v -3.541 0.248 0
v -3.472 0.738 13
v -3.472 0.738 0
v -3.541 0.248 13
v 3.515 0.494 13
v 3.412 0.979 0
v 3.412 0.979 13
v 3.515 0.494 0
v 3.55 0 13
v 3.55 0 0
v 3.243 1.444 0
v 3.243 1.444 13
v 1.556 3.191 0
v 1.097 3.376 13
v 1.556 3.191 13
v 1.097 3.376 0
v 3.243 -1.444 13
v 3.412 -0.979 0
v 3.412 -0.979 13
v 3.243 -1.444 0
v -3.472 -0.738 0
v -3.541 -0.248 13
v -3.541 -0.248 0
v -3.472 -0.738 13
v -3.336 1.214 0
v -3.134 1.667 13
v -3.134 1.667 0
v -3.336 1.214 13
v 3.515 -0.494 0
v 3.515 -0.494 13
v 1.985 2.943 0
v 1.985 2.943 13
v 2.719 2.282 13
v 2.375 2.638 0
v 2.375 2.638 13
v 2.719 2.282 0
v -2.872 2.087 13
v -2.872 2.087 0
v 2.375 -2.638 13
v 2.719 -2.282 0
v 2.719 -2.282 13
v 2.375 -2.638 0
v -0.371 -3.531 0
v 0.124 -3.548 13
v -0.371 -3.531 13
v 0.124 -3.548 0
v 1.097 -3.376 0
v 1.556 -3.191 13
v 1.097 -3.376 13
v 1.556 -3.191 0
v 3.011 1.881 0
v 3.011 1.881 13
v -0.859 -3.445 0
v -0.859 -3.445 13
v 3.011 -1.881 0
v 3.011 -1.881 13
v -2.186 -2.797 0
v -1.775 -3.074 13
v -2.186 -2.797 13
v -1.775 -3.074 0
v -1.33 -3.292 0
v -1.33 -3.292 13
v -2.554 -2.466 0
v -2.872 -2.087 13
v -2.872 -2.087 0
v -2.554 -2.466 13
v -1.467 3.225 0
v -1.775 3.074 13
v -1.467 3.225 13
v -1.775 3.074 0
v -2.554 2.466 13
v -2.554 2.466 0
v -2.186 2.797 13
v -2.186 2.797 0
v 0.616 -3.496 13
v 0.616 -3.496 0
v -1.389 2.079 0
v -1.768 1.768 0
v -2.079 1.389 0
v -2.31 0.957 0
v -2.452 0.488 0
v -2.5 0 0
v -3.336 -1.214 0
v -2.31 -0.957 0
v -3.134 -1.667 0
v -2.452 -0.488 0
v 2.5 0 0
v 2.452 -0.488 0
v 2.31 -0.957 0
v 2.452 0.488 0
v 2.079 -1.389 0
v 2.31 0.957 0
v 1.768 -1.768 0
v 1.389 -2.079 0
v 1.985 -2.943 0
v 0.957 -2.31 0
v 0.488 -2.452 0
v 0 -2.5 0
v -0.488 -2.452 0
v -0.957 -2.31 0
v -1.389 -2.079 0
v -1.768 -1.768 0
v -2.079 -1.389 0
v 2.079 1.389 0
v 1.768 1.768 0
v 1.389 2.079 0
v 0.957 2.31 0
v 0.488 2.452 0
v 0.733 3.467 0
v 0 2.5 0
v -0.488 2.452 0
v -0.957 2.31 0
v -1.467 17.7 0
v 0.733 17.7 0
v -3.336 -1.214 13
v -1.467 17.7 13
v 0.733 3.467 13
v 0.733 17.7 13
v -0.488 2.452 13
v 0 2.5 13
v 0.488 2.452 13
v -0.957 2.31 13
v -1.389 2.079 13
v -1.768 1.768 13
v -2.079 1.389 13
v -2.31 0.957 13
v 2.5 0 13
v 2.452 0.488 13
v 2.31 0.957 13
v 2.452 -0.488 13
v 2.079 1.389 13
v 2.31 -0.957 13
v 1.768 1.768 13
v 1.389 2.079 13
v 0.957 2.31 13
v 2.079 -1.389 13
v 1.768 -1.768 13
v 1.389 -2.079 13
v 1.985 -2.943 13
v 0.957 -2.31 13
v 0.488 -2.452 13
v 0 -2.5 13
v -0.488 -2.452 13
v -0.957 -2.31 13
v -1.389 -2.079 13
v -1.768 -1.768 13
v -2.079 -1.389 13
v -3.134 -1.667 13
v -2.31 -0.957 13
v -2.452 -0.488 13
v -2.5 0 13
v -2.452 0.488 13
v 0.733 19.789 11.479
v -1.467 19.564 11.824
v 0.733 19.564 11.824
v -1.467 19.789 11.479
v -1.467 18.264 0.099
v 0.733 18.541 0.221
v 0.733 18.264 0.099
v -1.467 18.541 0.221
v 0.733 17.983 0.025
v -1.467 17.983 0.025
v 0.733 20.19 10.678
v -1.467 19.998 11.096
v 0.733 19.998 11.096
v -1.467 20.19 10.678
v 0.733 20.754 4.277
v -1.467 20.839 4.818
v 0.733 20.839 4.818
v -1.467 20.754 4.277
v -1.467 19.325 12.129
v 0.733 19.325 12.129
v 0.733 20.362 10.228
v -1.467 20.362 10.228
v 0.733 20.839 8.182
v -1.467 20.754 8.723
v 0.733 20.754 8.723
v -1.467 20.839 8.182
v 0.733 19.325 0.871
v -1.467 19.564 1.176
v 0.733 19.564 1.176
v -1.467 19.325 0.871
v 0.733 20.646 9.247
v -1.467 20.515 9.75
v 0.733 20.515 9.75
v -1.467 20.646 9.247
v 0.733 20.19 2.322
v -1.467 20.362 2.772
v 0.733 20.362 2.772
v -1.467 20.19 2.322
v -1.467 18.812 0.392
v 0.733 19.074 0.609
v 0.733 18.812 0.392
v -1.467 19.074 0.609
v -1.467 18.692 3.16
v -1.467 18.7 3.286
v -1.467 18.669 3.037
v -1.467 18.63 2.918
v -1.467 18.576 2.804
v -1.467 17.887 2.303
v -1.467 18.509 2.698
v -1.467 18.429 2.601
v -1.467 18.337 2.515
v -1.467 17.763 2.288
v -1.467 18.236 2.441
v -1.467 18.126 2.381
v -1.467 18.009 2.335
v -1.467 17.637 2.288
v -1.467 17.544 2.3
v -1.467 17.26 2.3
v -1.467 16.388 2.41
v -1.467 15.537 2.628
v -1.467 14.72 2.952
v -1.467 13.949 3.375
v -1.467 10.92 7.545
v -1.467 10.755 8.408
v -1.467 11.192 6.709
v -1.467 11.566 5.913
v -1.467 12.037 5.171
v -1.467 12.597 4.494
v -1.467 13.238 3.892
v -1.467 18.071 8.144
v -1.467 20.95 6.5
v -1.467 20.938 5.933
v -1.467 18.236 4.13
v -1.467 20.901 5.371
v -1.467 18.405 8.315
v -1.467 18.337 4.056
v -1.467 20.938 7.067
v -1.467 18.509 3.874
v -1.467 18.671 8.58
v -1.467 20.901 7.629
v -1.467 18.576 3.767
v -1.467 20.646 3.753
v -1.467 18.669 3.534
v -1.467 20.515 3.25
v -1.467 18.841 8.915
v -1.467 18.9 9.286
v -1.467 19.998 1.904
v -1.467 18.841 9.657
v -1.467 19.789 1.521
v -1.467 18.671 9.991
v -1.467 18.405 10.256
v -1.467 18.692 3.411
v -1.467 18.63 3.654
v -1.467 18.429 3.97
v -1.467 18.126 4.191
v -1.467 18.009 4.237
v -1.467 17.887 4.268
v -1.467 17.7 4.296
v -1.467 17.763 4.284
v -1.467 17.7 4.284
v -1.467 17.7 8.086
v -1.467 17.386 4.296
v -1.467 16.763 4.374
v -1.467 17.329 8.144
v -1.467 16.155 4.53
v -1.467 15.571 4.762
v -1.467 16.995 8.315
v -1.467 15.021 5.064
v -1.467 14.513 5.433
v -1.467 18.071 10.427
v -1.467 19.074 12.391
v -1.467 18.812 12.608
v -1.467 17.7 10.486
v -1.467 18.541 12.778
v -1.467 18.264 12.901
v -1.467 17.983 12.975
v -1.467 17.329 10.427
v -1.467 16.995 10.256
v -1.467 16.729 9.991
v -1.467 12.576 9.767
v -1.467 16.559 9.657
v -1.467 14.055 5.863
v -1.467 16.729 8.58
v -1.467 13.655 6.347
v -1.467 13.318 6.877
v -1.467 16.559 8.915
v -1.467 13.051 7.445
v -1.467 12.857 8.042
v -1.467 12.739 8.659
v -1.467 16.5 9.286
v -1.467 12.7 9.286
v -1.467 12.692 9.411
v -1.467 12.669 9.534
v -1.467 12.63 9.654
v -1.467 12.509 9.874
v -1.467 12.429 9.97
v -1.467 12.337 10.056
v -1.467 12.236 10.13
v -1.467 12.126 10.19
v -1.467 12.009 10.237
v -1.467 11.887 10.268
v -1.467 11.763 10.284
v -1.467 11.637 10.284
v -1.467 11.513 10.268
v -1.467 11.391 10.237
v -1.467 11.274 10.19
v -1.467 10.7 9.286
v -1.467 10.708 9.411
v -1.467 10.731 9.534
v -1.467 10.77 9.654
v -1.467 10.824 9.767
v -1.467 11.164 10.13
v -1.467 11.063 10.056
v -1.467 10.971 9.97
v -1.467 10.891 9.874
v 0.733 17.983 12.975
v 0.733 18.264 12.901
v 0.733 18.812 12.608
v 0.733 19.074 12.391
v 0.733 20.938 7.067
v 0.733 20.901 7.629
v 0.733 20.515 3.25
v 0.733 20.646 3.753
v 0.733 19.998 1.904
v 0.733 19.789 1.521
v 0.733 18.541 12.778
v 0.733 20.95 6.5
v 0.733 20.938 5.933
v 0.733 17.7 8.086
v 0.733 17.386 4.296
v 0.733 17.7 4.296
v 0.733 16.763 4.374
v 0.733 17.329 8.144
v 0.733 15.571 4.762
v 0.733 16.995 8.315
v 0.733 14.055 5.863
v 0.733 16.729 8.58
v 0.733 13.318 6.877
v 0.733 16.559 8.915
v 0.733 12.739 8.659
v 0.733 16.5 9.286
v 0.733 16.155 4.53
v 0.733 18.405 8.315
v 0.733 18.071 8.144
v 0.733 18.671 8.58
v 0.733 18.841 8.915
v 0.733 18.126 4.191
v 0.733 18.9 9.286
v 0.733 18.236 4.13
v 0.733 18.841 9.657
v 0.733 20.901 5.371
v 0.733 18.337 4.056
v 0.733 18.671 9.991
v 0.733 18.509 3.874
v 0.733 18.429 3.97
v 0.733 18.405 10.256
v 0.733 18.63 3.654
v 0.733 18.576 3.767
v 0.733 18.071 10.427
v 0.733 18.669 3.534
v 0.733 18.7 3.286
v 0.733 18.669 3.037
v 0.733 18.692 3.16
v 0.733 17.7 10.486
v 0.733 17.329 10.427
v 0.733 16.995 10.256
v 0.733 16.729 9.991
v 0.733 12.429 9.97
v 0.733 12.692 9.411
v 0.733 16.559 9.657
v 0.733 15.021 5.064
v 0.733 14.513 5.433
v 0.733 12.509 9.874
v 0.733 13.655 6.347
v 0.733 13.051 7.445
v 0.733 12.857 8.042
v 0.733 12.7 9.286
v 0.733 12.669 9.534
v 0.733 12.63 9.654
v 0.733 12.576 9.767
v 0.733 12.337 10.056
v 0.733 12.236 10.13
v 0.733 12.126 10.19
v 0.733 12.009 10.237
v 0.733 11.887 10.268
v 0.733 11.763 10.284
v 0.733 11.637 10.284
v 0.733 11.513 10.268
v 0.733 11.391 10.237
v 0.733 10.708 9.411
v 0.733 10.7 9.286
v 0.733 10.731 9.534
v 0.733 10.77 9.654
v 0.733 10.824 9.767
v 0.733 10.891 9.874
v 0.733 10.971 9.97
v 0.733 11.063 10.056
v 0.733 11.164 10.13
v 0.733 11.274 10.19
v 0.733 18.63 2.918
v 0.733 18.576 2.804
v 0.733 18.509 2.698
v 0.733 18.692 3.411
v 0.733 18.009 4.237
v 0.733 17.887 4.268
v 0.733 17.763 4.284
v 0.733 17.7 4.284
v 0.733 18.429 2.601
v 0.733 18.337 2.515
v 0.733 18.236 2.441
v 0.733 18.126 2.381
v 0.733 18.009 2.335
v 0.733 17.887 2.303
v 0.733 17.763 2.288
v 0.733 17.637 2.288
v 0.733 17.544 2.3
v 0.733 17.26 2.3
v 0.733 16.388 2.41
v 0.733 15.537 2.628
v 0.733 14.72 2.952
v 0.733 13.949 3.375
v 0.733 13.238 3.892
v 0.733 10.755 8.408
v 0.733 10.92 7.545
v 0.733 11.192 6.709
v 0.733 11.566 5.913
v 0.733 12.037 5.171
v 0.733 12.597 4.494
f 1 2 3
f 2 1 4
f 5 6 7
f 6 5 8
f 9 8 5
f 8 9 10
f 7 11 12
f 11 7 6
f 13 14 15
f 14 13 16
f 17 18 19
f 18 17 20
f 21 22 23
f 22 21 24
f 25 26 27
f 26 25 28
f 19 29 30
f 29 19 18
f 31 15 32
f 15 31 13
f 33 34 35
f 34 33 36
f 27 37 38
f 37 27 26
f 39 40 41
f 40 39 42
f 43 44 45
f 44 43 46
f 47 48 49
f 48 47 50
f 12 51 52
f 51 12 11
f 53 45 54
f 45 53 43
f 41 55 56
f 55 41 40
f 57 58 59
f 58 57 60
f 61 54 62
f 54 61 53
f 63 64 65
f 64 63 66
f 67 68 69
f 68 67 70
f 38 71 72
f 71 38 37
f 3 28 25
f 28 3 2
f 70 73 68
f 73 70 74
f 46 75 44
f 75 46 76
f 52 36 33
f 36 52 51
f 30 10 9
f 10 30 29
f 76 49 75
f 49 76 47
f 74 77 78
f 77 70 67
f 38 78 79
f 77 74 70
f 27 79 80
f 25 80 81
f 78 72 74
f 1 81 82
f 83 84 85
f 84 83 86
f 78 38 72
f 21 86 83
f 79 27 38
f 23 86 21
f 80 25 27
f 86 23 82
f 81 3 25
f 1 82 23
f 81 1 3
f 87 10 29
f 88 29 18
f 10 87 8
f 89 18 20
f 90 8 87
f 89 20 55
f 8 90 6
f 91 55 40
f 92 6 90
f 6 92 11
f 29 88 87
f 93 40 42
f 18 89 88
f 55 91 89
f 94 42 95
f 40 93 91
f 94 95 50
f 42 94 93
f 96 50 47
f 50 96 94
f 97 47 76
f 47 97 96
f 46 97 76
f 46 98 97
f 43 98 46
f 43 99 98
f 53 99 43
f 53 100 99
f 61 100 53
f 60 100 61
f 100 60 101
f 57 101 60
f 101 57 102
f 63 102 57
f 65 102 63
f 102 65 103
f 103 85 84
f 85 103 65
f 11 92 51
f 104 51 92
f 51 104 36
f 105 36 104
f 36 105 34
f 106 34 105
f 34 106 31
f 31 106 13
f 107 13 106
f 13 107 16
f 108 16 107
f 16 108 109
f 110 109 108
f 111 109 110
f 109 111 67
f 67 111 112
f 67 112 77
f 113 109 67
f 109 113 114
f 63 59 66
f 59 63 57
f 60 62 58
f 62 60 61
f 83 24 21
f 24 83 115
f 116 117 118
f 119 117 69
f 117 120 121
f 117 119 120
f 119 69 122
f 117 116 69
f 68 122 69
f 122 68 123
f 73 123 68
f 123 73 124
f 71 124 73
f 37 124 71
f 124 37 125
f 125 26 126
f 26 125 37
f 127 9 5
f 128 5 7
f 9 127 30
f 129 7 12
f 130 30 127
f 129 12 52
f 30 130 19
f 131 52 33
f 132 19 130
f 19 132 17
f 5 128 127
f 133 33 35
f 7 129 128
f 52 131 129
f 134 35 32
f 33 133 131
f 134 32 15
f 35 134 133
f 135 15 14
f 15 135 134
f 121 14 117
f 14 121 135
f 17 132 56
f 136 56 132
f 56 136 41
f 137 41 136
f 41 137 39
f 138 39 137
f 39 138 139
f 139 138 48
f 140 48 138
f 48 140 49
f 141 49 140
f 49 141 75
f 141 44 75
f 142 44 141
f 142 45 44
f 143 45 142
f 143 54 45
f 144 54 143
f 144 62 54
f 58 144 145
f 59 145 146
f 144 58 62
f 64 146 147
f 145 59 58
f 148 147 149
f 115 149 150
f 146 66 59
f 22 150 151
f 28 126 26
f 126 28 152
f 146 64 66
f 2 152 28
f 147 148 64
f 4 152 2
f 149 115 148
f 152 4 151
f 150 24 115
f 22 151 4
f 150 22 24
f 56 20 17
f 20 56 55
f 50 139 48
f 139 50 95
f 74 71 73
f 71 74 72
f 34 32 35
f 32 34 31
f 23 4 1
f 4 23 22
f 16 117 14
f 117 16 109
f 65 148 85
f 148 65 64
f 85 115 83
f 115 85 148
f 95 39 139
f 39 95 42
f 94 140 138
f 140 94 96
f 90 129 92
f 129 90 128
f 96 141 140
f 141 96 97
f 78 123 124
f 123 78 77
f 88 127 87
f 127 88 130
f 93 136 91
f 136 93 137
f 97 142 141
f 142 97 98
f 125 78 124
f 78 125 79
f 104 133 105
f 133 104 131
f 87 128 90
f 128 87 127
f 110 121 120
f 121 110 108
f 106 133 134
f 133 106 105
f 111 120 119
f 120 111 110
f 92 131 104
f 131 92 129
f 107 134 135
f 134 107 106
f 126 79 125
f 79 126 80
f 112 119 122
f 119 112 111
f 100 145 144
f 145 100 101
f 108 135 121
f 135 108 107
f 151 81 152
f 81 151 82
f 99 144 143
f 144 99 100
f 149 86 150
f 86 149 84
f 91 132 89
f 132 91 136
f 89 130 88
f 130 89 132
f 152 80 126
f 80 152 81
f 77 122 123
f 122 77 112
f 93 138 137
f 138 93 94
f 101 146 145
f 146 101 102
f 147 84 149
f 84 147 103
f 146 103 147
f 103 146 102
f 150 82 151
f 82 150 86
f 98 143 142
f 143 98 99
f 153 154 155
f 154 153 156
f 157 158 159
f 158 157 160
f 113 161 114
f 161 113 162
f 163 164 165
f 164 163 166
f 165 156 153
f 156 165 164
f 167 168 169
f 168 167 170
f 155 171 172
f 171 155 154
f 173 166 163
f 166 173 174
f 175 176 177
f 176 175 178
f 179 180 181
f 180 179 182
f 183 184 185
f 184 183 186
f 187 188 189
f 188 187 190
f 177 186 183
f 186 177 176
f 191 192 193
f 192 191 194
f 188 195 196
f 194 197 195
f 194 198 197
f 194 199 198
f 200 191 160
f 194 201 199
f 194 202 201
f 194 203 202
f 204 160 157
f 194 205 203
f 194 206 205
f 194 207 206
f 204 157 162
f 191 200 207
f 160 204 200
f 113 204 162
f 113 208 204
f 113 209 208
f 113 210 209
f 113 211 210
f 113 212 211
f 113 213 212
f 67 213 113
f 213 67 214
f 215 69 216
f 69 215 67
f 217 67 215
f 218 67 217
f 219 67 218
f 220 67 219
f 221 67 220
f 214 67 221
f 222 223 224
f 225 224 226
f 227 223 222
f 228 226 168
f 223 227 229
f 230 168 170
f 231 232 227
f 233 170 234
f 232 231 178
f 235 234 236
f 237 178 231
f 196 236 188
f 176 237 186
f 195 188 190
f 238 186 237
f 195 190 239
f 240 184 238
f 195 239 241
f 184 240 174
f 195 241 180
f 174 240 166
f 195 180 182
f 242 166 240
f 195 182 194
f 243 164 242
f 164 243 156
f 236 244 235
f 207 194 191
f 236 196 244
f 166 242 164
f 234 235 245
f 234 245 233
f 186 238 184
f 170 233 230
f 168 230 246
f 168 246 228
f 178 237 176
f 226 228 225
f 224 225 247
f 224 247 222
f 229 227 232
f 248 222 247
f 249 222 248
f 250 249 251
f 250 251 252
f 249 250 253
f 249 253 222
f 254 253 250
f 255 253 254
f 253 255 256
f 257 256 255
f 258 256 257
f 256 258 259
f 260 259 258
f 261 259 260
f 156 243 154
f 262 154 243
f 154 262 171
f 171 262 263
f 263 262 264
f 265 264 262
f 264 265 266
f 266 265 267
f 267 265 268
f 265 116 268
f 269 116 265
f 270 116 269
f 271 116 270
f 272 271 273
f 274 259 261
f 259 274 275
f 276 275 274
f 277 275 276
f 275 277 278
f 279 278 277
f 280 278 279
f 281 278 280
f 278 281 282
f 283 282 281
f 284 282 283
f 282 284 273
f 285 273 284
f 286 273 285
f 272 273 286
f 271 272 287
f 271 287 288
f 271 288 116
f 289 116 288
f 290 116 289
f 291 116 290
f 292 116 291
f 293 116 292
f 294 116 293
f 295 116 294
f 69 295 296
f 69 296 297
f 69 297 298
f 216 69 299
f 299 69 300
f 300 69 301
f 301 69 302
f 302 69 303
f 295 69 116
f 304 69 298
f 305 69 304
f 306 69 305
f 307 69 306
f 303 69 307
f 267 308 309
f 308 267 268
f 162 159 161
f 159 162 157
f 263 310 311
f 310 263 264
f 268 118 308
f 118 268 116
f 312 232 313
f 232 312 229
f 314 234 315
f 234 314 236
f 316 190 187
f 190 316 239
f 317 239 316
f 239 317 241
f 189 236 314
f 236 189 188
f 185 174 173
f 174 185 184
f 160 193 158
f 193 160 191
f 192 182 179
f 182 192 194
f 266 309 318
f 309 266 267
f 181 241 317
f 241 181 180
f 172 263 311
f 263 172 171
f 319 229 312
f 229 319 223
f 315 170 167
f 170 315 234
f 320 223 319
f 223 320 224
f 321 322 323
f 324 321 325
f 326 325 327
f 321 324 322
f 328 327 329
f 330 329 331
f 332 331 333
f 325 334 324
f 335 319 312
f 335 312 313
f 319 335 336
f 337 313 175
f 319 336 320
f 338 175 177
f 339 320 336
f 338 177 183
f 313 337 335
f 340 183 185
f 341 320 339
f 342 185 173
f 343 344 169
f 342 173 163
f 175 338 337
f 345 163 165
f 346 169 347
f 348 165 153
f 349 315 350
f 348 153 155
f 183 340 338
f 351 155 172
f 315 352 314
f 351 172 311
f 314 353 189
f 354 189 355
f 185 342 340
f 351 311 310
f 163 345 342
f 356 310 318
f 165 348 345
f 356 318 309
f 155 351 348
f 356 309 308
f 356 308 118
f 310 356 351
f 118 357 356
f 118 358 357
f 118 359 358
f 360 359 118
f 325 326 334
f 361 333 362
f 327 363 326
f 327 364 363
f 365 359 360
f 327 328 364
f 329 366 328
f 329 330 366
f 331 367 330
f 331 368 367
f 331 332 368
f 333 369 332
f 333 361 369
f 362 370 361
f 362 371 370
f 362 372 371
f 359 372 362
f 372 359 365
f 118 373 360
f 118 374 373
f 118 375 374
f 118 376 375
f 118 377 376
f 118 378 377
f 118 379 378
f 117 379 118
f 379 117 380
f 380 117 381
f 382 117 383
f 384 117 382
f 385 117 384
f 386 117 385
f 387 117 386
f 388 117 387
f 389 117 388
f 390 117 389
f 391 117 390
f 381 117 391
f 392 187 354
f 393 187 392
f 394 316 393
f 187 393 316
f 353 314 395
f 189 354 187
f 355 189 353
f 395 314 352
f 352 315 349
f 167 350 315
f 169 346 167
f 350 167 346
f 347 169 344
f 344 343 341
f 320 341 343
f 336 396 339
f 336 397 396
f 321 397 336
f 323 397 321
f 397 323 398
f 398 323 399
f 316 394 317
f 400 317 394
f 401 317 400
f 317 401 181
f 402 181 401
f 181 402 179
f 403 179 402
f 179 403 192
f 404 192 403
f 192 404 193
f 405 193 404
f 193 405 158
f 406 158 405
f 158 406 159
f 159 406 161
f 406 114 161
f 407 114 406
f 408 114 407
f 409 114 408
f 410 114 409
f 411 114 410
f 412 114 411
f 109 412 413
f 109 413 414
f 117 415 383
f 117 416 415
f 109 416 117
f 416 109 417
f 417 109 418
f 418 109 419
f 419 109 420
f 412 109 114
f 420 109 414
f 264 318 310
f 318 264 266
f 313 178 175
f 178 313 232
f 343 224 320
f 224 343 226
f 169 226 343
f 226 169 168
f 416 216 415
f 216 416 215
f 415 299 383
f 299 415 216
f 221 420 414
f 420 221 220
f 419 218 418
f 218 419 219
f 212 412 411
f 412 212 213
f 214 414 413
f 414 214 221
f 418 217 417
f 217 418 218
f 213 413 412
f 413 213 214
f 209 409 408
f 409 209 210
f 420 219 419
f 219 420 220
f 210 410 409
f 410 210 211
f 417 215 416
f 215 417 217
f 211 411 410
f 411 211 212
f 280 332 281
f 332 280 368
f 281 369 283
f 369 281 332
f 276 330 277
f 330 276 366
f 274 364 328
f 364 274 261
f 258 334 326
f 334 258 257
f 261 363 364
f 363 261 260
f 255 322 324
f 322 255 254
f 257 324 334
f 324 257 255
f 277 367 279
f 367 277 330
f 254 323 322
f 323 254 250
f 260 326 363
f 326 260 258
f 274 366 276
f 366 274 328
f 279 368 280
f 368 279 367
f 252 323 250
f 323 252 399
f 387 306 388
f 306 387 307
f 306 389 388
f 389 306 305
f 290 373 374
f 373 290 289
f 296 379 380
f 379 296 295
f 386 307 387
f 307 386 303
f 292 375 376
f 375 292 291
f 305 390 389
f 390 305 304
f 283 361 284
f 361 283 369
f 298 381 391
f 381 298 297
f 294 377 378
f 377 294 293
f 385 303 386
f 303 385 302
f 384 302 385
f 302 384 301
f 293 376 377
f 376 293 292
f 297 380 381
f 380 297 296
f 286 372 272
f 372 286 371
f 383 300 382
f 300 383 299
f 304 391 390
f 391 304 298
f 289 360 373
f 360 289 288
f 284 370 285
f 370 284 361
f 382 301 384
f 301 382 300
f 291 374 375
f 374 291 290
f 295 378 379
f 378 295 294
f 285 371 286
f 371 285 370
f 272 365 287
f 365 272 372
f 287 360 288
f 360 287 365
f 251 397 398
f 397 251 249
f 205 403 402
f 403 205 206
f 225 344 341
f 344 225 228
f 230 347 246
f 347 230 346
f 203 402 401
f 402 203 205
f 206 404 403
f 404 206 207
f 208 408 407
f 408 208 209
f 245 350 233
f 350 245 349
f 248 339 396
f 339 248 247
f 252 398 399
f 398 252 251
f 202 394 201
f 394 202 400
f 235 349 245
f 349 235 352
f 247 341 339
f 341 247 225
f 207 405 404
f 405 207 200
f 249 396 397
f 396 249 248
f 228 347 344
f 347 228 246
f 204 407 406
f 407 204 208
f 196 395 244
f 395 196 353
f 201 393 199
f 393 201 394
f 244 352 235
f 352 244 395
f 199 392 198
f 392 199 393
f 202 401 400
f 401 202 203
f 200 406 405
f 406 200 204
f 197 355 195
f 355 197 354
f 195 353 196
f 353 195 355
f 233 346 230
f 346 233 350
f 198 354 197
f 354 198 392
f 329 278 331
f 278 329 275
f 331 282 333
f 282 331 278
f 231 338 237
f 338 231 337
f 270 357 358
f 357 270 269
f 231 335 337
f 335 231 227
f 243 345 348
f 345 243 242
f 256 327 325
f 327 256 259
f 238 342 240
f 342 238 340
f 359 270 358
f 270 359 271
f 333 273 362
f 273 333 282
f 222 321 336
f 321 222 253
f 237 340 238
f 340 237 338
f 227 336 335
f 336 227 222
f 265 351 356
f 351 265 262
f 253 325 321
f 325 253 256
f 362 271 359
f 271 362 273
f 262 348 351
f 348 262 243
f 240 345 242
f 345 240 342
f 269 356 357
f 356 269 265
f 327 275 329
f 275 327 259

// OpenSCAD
// file: fpv_camera_mount.scad
module fpv_camera_mount_arc(depth, screwwidth, radius = 6)
{
	res = $preview ? 10 : 50;
	intersection() {
		outrad = screwwidth / 2 + radius;
		inrad = radius - screwwidth / 2;
		difference() {
			cylinder(depth, r = outrad, $fn = res);
			cylinder(depth, r = inrad, $fn = res);
		}
		arcextend = screwwidth / 2;
		cube([outrad + arcextend, outrad + arcextend, depth]);
	}
	translate([radius, 0, 0]) cylinder(depth, r = screwwidth / 2, $fn = res);
	translate([0, radius, 0]) cylinder(depth, r = screwwidth / 2, $fn = res);
}

module fpv_camera_mount_hole(depth, screwwidth = 2)
{
	res = $preview ? 10 : 20;
	cylinder(depth, r = screwwidth * 1.2 / 2, $fn = res);
}

module fpv_camera_mount(depth, screwwidth = 2)
{
	fpv_camera_mount_full_6mm(depth, screwwidth);
	rotate([0, 0, 160]) fpv_camera_mount_half_9mm(depth, screwwidth);
}

module fpv_camera_mount_full(depth, screwwidth = 2)
{
	fpv_camera_mount_full_6mm(depth, screwwidth);
	fpv_camera_mount_full_9mm(depth, screwwidth);
}

module fpv_camera_mount_half_6mm(depth, screwwidth = 2)
{
	fpv_camera_mount_hole(depth, screwwidth);
	fpv_camera_mount_arc(depth, screwwidth, 6);
}

module fpv_camera_mount_full_6mm(depth, screwwidth = 2)
{
	rotate([0, 0, 90]) fpv_camera_mount_half_6mm(depth, screwwidth);
	rotate([0, 0, 270]) fpv_camera_mount_half_6mm(depth, screwwidth);
}

module fpv_camera_mount_half_9mm(depth, screwwidth = 2)
{
	fpv_camera_mount_hole(depth, screwwidth);
	fpv_camera_mount_arc(depth, screwwidth, 9);
}

module fpv_camera_mount_full_9mm(depth, screwwidth = 2, angle_offset = -20)
{
	rotate([0, 0, angle_offset]) fpv_camera_mount_half_9mm(depth, screwwidth);
	rotate([0, 0, 180 + angle_offset]) fpv_camera_mount_half_9mm(depth, screwwidth);
}
// main file
use <fpv_camera_mount.scad>

anti_warp = .09;
filament_width = 1.75;

function anti_warp_widen(v) = v + (filament_width * anti_warp) * 2;
function anti_warp_shrink(v) = v - (filament_width * anti_warp) * 2;

height = 13;
offset = 13;

standoff_width = 5;
standoff_wall_thickness = 1.05;

wall_thickness = 2.2;

$fs = $preview ? 1 : 0.5;
$fa = $preview ? 10 : 5;

module standoff() {
	difference() {
		cylinder(h = height, d = standoff_width + 2 * standoff_wall_thickness);
		cylinder(h = height, d = standoff_width);
	}
}

module main() {
	difference() {
		standoff();
		cylinder(h = height, d = standoff_width);
	}
	difference() {
		translate([-wall_thickness / 1.5, 0]) {
			difference() {
				union() {
					translate([0, offset + wall_thickness + standoff_width / 2, height / 2]) rotate([0, 90]) {
						scale([1,0.5]) cylinder(h = wall_thickness, d = height);
					}
					cube([wall_thickness, offset + wall_thickness + standoff_width / 2, height]);
				}
				translate([0, offset + wall_thickness + standoff_width / 2, height / 1.4]) rotate([0, 90]) {
					rotate([0, 0, 270]) fpv_camera_mount_half_6mm(wall_thickness);
				}
			}
		}
		cylinder(h = height, d = standoff_width);
	}
}

main();
